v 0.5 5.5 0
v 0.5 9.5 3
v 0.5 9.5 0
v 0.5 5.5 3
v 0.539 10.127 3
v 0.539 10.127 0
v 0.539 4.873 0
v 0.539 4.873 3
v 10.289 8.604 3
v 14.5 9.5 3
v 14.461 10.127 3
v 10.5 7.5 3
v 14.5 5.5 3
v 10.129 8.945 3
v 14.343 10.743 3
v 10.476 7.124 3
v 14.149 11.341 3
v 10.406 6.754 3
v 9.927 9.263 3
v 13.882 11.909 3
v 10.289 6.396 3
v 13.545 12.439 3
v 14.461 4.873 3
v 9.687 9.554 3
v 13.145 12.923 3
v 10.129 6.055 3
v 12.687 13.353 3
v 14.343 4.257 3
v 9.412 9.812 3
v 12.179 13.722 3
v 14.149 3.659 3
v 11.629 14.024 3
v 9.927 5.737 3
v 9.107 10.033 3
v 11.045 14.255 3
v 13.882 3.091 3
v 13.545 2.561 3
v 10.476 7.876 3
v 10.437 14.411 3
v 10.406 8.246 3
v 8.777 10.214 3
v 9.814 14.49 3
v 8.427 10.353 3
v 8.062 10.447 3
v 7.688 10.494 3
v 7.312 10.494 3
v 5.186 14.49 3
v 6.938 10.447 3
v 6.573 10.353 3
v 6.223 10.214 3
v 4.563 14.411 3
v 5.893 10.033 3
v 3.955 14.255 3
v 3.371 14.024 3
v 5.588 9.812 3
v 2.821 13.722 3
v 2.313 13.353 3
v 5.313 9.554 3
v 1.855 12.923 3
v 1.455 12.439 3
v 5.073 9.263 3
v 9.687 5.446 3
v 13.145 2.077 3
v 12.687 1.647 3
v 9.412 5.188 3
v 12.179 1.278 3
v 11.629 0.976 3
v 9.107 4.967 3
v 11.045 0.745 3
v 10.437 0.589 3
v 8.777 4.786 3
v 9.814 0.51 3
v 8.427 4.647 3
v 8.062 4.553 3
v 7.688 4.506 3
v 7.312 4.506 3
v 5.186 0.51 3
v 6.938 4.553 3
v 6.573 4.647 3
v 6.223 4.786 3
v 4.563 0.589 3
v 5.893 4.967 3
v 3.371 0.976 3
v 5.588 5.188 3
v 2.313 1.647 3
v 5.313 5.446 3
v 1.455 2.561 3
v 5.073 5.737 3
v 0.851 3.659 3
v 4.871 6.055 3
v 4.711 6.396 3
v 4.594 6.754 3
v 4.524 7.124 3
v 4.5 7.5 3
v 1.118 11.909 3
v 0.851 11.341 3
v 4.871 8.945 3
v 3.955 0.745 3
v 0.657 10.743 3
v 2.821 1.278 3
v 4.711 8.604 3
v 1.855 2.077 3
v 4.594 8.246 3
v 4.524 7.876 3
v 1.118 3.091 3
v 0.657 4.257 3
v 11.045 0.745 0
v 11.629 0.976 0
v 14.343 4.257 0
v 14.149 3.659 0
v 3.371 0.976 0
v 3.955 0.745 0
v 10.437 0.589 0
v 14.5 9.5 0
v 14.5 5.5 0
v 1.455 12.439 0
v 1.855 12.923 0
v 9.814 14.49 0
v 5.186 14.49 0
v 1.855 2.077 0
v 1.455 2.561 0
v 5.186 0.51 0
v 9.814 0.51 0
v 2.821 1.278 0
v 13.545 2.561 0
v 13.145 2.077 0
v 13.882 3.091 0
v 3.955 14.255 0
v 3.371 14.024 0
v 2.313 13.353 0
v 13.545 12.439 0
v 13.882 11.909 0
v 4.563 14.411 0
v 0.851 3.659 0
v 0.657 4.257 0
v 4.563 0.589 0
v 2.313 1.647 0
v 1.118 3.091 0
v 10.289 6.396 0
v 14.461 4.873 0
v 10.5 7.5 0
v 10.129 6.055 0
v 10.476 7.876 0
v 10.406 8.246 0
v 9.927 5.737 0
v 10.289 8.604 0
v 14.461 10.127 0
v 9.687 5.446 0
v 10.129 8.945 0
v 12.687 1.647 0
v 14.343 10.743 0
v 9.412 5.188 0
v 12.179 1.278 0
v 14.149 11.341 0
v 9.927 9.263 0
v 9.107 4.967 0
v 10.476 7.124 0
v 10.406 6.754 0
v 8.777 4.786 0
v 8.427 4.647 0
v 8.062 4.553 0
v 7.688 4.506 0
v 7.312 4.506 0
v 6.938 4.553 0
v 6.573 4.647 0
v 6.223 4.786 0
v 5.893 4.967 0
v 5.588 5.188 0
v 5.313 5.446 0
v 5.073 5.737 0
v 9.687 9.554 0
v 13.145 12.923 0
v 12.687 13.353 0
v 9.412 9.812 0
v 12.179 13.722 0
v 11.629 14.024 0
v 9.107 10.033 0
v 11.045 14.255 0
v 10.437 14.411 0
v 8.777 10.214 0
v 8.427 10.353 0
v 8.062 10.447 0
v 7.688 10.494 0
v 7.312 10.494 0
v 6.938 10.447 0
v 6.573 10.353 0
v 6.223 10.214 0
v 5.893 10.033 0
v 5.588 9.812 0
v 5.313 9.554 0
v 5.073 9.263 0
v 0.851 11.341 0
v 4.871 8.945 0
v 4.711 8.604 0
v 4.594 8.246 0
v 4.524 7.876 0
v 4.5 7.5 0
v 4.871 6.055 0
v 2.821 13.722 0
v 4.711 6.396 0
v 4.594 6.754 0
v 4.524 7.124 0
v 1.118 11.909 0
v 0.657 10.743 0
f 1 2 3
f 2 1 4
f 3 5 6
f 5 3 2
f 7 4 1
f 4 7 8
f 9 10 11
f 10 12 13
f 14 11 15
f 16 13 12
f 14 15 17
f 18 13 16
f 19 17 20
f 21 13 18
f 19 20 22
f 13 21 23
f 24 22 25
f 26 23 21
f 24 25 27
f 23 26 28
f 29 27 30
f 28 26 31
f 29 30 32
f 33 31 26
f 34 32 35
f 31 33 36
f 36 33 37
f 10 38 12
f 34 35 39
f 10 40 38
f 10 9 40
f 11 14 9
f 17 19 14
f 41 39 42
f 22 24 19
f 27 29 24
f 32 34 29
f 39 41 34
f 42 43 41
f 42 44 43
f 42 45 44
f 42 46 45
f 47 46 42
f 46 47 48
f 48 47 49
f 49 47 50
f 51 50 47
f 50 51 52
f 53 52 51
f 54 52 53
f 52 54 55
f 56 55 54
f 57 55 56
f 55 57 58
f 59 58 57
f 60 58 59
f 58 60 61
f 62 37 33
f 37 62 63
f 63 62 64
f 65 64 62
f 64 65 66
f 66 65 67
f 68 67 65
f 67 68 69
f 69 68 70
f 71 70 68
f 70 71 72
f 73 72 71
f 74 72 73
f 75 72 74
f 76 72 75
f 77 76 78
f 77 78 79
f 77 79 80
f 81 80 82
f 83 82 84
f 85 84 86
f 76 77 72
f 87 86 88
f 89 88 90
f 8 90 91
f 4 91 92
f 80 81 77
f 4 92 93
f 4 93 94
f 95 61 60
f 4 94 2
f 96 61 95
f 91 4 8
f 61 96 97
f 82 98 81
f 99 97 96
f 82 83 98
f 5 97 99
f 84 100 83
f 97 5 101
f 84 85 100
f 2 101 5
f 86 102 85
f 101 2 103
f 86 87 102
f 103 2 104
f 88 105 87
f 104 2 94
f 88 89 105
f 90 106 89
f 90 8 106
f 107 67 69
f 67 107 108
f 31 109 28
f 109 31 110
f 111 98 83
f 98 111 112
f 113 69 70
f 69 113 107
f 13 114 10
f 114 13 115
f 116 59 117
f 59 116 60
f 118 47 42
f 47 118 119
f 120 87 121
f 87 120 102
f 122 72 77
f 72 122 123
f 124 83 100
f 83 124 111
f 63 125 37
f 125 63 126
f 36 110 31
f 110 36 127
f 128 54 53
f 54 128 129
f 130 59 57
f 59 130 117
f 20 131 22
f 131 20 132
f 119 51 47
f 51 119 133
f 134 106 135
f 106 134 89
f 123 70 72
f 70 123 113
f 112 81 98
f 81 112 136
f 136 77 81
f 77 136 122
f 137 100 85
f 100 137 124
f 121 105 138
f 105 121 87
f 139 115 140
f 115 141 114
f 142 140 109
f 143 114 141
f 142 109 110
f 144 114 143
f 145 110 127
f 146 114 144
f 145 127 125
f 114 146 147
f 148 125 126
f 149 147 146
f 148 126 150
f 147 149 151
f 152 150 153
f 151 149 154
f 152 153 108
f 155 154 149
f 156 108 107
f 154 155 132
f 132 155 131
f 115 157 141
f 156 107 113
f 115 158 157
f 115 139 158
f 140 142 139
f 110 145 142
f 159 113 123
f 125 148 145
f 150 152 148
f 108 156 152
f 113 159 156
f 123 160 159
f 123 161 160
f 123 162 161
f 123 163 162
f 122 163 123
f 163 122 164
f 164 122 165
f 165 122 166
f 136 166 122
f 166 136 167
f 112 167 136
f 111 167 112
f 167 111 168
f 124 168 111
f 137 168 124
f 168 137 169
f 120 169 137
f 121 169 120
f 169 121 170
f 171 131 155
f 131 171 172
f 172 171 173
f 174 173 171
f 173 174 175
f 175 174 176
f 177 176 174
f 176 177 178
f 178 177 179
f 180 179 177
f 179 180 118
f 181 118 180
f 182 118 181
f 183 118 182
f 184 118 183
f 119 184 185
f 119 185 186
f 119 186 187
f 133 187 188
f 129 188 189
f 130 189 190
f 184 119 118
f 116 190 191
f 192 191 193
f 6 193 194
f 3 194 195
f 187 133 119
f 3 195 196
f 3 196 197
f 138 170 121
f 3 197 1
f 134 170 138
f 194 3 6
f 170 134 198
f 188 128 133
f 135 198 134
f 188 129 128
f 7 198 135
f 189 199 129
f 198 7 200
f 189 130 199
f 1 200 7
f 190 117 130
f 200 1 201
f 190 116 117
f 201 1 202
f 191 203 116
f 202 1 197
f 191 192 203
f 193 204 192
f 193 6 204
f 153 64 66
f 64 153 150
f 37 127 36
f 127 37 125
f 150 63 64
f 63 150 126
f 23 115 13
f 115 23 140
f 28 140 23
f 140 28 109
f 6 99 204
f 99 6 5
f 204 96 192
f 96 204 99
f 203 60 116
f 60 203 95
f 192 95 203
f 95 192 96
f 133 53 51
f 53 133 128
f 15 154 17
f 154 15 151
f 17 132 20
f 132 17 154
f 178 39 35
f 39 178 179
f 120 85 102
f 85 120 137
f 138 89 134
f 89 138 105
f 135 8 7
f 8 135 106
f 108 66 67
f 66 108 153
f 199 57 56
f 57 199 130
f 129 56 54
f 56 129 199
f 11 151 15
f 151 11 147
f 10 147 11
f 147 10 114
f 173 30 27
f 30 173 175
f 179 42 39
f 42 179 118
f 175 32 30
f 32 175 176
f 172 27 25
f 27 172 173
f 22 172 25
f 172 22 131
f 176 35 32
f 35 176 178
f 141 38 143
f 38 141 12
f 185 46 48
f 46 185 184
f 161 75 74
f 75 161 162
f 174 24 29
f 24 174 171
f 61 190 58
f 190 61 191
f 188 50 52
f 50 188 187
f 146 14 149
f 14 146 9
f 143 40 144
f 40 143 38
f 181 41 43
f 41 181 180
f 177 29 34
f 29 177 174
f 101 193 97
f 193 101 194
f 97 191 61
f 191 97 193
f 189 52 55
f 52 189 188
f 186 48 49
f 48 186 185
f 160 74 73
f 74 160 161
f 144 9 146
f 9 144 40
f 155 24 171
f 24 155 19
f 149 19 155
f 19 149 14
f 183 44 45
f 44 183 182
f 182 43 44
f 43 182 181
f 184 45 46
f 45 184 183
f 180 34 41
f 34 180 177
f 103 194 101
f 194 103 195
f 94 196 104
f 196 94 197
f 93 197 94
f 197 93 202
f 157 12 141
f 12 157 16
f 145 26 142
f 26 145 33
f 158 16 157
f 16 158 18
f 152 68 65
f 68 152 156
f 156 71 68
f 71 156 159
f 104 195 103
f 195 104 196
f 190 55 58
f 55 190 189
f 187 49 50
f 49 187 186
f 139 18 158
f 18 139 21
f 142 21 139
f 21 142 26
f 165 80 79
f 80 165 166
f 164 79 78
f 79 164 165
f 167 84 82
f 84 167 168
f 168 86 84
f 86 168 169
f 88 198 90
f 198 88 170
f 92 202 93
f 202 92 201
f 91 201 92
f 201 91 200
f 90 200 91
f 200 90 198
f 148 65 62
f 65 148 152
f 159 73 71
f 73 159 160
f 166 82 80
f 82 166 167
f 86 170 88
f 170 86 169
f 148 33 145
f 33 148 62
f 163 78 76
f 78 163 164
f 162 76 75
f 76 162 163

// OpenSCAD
// Generated by SolidPython 1.1.3 on 2023-01-09 14:52:12
$fn = 50;


difference() {
	union() {
		translate(v = [7.5000000000, 7.5000000000, 0]) {
			rotate(a = [0, 0, 0]) {
				hull() {
					translate(v = [-2.0000000000, 2.0000000000, 0]) {
						rotate(a = [0, 0, 0]) {
							translate(v = [0, 0, 0]) {
								rotate(a = [0, 0, 0]) {
									cylinder(h = 3, r = 5);
								}
							}
						}
					}
					translate(v = [2.0000000000, 2.0000000000, 0]) {
						rotate(a = [0, 0, 0]) {
							translate(v = [0, 0, 0]) {
								rotate(a = [0, 0, 0]) {
									cylinder(h = 3, r = 5);
								}
							}
						}
					}
					translate(v = [-2.0000000000, -2.0000000000, 0]) {
						rotate(a = [0, 0, 0]) {
							translate(v = [0, 0, 0]) {
								rotate(a = [0, 0, 0]) {
									cylinder(h = 3, r = 5);
								}
							}
						}
					}
					translate(v = [2.0000000000, -2.0000000000, 0]) {
						rotate(a = [0, 0, 0]) {
							translate(v = [0, 0, 0]) {
								rotate(a = [0, 0, 0]) {
									cylinder(h = 3, r = 5);
								}
							}
						}
					}
				}
			}
		}
	}
	union() {
		translate(v = [7.5000000000, 7.5000000000, 0]) {
			rotate(a = [0, 0, 0]) {
				translate(v = [0, 0, -50]) {
					rotate(a = [0, 0, 0]) {
						cylinder(h = 100, r = 3.0000000000);
					}
				}
			}
		}
	}
}
/***********************************************
*********      SolidPython code:      **********
************************************************
 
from solid import *
import os
import subprocess

import oomB

import opsc_library_gen

mode = "laser"
#mode = "3d_print"

defined_objects = {}

radius_dict = {}
countersunk_dict = {}


def set_mode(m):
    global mode
    mode = m
    radius_dict['M6'] = 6.5/2
    radius_dict['M3'] = 3.3/2
    if mode == "laser":
        radius_dict['M6'] = 6/2
        radius_dict['M3'] = 3/2

    countersunk_dict['M3'] = {}
    countersunk_dict['M3']['little_rad'] = radius_dict['M3']
    countersunk_dict['M3']['big_rad'] = (5.5+0.6)/2
    if mode == "laser":
        countersunk_dict['M3']['big_rad'] = (4.75+0.6)/2
        countersunk_dict['M3']['little_rad'] = (4.75+0.6)/2

    countersunk_dict['M3']['height'] = 1.7


def opsc_make_object(filename, objects, save_type="none",resolution=50, layers = 1, tilediff = 200, mode="laser"):
    set_mode(mode)
    save_type = save_type.lower()
    os.makedirs(os.path.dirname(filename), exist_ok=True)
    final_object = opsc_get_object(objects)
    # Save the final object to the specified filename    
    scad_render_to_file(final_object, filename, file_header='$fn = %s;' % resolution, include_orig_code=True)
    if mode == "laser":
        filename_laser = filename.replace(".scad","-flat.scad")
        scad_render_to_file(getLaser(final_object, layers=layers, tilediff=tilediff), filename_laser, file_header='$fn = %s;' % resolution, include_orig_code=True)
        if save_type == "all":
            saveToAll(filename_laser)
        elif save_type == "dxf":
            saveToDxf(filename_laser)
    if save_type == "all":
        saveToAll(filename)
    elif save_type == "dxf":
        saveToDxf(filename)


def opsc_get_object(objects):
    # Create the solidpython objects
    positive_objects = [get_opsc_item(obj) for obj in objects if obj['type'] == 'positive']
    negative_objects = [get_opsc_item(obj) for obj in objects if obj['type'] == 'negative']
    # Union the positive objects
    positive_object = union()(*positive_objects)
    # Union the negative objects
    negative_object = union()(*negative_objects)
    # Create the final object by subtracting the negative objects from the positive objects
    return difference()(positive_object, negative_object)

def get_opsc_item(params):
    # A dictionary to map radius string values to numerical values
    #radius_dict = {'small': 5, 'medium': 10, 'large': 15}
    # An array of function names for basic shapes
    basic_shapes = ['cube', 'sphere', 'cylinder']
    
    # An array of function names for other shapes
    other_shapes = ['hole', 'slot', 'rounded_rectangle', 'countersunk']
    


    # Convert radius to r if present, and remove radius from the params dictionary
    if 'radius' in params:
        if isinstance(params['radius'], str):
            # Use the radius_dict to map the radius string value to a numerical value
            params['r'] = radius_dict[params['radius']]
        else:
            params['r'] = params['radius']
        del params['radius']
    

    # Check if the object type is a basic shape
    if params['shape'] in basic_shapes:
        # Remove shape and unexpected dictionary values
        allowed_keys = {'size', 'r', 'r1', 'r2', 'd', 'h', 'rw', 'rh', 'dw', 'dh'}
        shape_params = {k: v for k, v in params.items() if k in allowed_keys}

        # Call the corresponding function for the shape parameter, using ** notation to pass the shape_params dictionary as keyword arguments
        return get_opsc_transform(params,globals()[params['shape']](**shape_params))
    
    # If the object type is not a basic shape, check if it's a defined object or one of the other shapes
    elif params['shape'] in other_shapes:
        # Call the corresponding function for the shape parameter, passing the params dictionary as an argument
        p2 = copy.deepcopy(params)
        p2["pos"] = [0,0,0]
        return get_opsc_transform(params,globals()[params['shape']](p2))
    
    # If the object is not a basic shape or a defined object, try to import it from a .scad file
    else:
        obj = defined_objects[params['shape']]
        return get_opsc_transform(params,obj)

def get_opsc_transform(params, solid_obj):
    # Rotate the object based on the 'rot' field in the params dictionary, or the 'rotX', 'rotY', and 'rotZ' fields if 'rot' is not present
    rot = params.get('rot', [])
    if rot:
        rotX, rotY, rotZ = rot
    else:
        rotX = params.get('rotX', 0)
        rotY = params.get('rotY', 0)
        rotZ = params.get('rotZ', 0)
    solid_obj = rotate([rotX, rotY, rotZ])(solid_obj)

    # Translate the object based on the 'pos' field in the params dictionary, or the 'x', 'y', and 'z' fields if 'pos' is not present
    pos = params.get('pos', [])
    if pos:
        x, y, z = pos
    else:
        x = params.get('x', 0)
        y = params.get('y', 0)
        z = params.get('z', 0)
    solid_obj = translate([x, y, z])(solid_obj)
    return solid_obj


import random

def opsc_easy_array(type, shape, repeats, pos_start, shift_arr, **kwargs):
    for i in range(0,3):
        repeats.append(1)
        pos_start.append(0)
        shift_arr.append(0)
    return_objects = []

    for x in range(0,repeats[0]):
        for y in range(0,repeats[1]):
            for z in range(0,repeats[2]):
                return_objects.append(opsc_easy(type, shape, pos=[pos_start[0]+x*shift_arr[0],pos_start[1]+y*shift_arr[1],pos_start[2]+z*shift_arr[2]], **kwargs))
    return return_objects                



def opsc_easy(type, shape, **kwargs):
    obj = {
        'type': type,
        'shape': shape
    }
    for param in ['size', 'r', 'r1', 'r2', 'd', 'h', 'rw', 'rh', 'dw', 'dh', 'pos', 'x', 'y', 'z', 'rot', 'rotX', 'rotY', 'rotZ', "w"]:
        if param in kwargs:
            obj[param] = kwargs[param]
    return obj

def hole(params):
    p2 = copy.deepcopy(params)  
    # Check if the radius is a string and replace it with the corresponding value from the dictionary
    if isinstance(p2['r'], str):
        p2['r'] = radius_dict[p2['r']]
    
    # Set the height to 100 if not specified
    if 'h' not in p2:
        p2['h'] = 100
        p2["pos"] = [0,0,-50]
    p2["center"] = True
    # Create the cylinder object
    p2["shape"] = "cylinder"
    p2["type"] = "positive"

    return get_opsc_item(p2)

import copy

def countersunk(params):
    p2 = copy.deepcopy(params)
    counter_rad = p2['r']
    p2['r'] = radius_dict[p2['r']]
    hp = copy.deepcopy(p2)
    hp["type"] = "positive"
    hp["shape"] = "hole"
    del hp["rot"]
    hol = get_opsc_item(hp)
    
    cp = copy.deepcopy(p2)
    cp["h"] = countersunk_dict[counter_rad]["height"]
    cp["r2"] = countersunk_dict[counter_rad]["little_rad"]
    cp["r1"] = countersunk_dict[counter_rad]["big_rad"]
    del cp["r"]
    del cp["rot"]
    cp["type"] = "positive"
    cp["shape"] = "cylinder"
    cp["pos"] = [0,0,0]

    top = get_opsc_item(cp)
    return union()(hol,top)



def slot(params):  
    p2 = copy.deepcopy(params) 
    if isinstance(p2['r'], str):
        p2['r'] = radius_dict[p2['r']]
    p2["type"] = "positive"
    p2["shape"] = "hole"
    del p2["rot"]
    p2["pos"] = [0,0,0]
    left = copy.deepcopy(p2)
    right = copy.deepcopy(p2)
    left["pos"][0] = p2["w"] / 2 - p2["r"] 
    
    right["pos"][0] = -p2["w"] / 2 + p2["r"] 
    pass
    leftObj = get_opsc_item(left)
    rightObj = get_opsc_item(right)
    return hull()(leftObj, rightObj)

def rounded_rectangle(params):   
    p2 = copy.deepcopy(params) 
    p2["h"] = p2["size"][2]
    p2["pos"] = p2.get("pos", [0, 0, 0]) 
    p2["type"] = "positive"
    p2["shape"] = "hole"
    p2["pos"] = [0,0,0]
    
    if 'rot' in p2:
        del p2["rot"]   
    if 'r' not in p2:
        p2["r"] = 5 
    tl = copy.deepcopy(p2)
    tr = copy.deepcopy(p2)
    bl = copy.deepcopy(p2)
    br = copy.deepcopy(p2)
    tl["pos"][0] = -(p2["size"][0] - p2["r"]*2)/2
    tl["pos"][1] = (p2["size"][1] - p2["r"]*2)/2
    tr["pos"][0] = (p2["size"][0] - p2["r"]*2)/2
    tr["pos"][1] = (p2["size"][1] - p2["r"]*2)/2
    bl["pos"][0] = -(p2["size"][0] - p2["r"]*2)/2
    bl["pos"][1] = -(p2["size"][1] - p2["r"]*2)/2
    br["pos"][0] = (p2["size"][0] - p2["r"]*2)/2
    br["pos"][1] = -(p2["size"][1] - p2["r"]*2)/2
    del tl["size"]
    del tr["size"]
    del bl["size"]
    del br["size"]
    tlo = get_opsc_item(tl)
    tro = get_opsc_item(tr)
    blo = get_opsc_item(bl)
    bro = get_opsc_item(br)    
    return hull()(tlo, tro, blo, bro)



def import_scad_object(filename):
    # Import the .scad file and convert it to a solidpython object
    #filename = "parts"
    obj = import_scad(filename)
    return obj.main()
    


import os
import solid as solidpython

# A dictionary to store the defined objects


def load_scad_objects():
    opsc_library_gen.gen_library(defined_objects)

import random

def test(num_objects):
    objects = []
    for i in range(num_objects):
        # Choose a random shape
        #shape = random.choice(['cube', 'sphere', 'cylinder', 'hole', 'slot', "rounded_rectangle"])
        shape = random.choice(["rounded_rectangle"])

        # Choose a random type
        type = random.choice(['positive', 'negative'])
        
        # Create an empty object dictionary
        obj = {'shape': shape, 'type': type}
        
        # Set shape-specific parameters
        if obj['shape'] in ['cube']:
            obj['size'] =  [random.uniform(5, 15), random.uniform(5, 15), random.uniform(5, 15)]
        if obj['shape'] in ['rounded_rectangle']:
            obj['size'] =  [random.uniform(5, 15), random.uniform(5, 15), random.uniform(5, 15)]
            obj['r'] = random.uniform(0.5, 5)
        elif obj['shape'] == 'sphere':
            obj['r'] = random.uniform(5, 15)
        elif obj['shape'] in ['cylinder', 'hole']:
            obj['r'] = random.uniform(0.5, 5)
            obj['h'] = random.uniform(5, 15)
        elif obj['shape'] == 'slot':
            obj['r'] = random.uniform(0.5, 5)
            obj['h'] = random.uniform(5, 15)
            obj['w'] = random.uniform(5, 15)
        
        # Set a random position and rotation
        obj['pos'] = [random.uniform(-20, 20), random.uniform(-20, 20), random.uniform(-20, 20)]
        obj['rot'] = [random.uniform(-180, 180), random.uniform(-180, 180), random.uniform(-180, 180)]
        
        # Add the object to the list
        objects.append(obj)
    return objects

####### old file saving
def saveToAll(fileIn):
    saveToDxf(fileIn)
    saveToPng(fileIn)
    saveToStl(fileIn)
    saveToSvg(fileIn)

def saveToDxf(fileIn, fileOut="", copy_to_laser=True):
    if fileOut == "":
        fileOut = fileIn.replace(".scad",".dxf")
    saveToFile(fileIn, fileOut)


    
def saveToPng(fileIn, fileOut="",extra="--render"):
    if fileOut == "":
        fileOut = fileIn.replace(".scad",".png")
    saveToFile(fileIn, fileOut)

def saveToStl(fileIn, fileOut=""):
    if fileOut == "":
        fileOut = fileIn.replace(".scad",".stl")
    saveToFile(fileIn, fileOut)
    
def saveToSvg(fileIn, fileOut=""):
    if fileOut == "":
        fileOut = fileIn.replace(".scad",".svg")
    saveToFile(fileIn, fileOut)

def saveToFile(fileIn, fileOut,extra=""):
    #extra = extra + " --colorscheme Tomorrow"

    launchStr = 'openscad -o "' + fileOut + '"' + extra + ' "' + fileIn + '"'
    if ".png" in fileOut:
        launchStr = launchStr + " --render"
    print("            saveToFile launch string: " + launchStr)
    subprocess.run(launchStr)
    x=0

def getLaser(final_object,start=1.5,layers=1,thickness=3,tilediff=200):
        rv= []

        for x in range(layers):
            rv.append(translate([0,x*tilediff,0])(
                    projection()(
                        intersection()(translate([-500,-500,start+x*thickness])(cube(size=[1000,1000,0.1])),
                            final_object
                        )
                    )
            )
            )
            
        return union()(rv)

set_mode("laser")
load_scad_objects() 
 
************************************************/
